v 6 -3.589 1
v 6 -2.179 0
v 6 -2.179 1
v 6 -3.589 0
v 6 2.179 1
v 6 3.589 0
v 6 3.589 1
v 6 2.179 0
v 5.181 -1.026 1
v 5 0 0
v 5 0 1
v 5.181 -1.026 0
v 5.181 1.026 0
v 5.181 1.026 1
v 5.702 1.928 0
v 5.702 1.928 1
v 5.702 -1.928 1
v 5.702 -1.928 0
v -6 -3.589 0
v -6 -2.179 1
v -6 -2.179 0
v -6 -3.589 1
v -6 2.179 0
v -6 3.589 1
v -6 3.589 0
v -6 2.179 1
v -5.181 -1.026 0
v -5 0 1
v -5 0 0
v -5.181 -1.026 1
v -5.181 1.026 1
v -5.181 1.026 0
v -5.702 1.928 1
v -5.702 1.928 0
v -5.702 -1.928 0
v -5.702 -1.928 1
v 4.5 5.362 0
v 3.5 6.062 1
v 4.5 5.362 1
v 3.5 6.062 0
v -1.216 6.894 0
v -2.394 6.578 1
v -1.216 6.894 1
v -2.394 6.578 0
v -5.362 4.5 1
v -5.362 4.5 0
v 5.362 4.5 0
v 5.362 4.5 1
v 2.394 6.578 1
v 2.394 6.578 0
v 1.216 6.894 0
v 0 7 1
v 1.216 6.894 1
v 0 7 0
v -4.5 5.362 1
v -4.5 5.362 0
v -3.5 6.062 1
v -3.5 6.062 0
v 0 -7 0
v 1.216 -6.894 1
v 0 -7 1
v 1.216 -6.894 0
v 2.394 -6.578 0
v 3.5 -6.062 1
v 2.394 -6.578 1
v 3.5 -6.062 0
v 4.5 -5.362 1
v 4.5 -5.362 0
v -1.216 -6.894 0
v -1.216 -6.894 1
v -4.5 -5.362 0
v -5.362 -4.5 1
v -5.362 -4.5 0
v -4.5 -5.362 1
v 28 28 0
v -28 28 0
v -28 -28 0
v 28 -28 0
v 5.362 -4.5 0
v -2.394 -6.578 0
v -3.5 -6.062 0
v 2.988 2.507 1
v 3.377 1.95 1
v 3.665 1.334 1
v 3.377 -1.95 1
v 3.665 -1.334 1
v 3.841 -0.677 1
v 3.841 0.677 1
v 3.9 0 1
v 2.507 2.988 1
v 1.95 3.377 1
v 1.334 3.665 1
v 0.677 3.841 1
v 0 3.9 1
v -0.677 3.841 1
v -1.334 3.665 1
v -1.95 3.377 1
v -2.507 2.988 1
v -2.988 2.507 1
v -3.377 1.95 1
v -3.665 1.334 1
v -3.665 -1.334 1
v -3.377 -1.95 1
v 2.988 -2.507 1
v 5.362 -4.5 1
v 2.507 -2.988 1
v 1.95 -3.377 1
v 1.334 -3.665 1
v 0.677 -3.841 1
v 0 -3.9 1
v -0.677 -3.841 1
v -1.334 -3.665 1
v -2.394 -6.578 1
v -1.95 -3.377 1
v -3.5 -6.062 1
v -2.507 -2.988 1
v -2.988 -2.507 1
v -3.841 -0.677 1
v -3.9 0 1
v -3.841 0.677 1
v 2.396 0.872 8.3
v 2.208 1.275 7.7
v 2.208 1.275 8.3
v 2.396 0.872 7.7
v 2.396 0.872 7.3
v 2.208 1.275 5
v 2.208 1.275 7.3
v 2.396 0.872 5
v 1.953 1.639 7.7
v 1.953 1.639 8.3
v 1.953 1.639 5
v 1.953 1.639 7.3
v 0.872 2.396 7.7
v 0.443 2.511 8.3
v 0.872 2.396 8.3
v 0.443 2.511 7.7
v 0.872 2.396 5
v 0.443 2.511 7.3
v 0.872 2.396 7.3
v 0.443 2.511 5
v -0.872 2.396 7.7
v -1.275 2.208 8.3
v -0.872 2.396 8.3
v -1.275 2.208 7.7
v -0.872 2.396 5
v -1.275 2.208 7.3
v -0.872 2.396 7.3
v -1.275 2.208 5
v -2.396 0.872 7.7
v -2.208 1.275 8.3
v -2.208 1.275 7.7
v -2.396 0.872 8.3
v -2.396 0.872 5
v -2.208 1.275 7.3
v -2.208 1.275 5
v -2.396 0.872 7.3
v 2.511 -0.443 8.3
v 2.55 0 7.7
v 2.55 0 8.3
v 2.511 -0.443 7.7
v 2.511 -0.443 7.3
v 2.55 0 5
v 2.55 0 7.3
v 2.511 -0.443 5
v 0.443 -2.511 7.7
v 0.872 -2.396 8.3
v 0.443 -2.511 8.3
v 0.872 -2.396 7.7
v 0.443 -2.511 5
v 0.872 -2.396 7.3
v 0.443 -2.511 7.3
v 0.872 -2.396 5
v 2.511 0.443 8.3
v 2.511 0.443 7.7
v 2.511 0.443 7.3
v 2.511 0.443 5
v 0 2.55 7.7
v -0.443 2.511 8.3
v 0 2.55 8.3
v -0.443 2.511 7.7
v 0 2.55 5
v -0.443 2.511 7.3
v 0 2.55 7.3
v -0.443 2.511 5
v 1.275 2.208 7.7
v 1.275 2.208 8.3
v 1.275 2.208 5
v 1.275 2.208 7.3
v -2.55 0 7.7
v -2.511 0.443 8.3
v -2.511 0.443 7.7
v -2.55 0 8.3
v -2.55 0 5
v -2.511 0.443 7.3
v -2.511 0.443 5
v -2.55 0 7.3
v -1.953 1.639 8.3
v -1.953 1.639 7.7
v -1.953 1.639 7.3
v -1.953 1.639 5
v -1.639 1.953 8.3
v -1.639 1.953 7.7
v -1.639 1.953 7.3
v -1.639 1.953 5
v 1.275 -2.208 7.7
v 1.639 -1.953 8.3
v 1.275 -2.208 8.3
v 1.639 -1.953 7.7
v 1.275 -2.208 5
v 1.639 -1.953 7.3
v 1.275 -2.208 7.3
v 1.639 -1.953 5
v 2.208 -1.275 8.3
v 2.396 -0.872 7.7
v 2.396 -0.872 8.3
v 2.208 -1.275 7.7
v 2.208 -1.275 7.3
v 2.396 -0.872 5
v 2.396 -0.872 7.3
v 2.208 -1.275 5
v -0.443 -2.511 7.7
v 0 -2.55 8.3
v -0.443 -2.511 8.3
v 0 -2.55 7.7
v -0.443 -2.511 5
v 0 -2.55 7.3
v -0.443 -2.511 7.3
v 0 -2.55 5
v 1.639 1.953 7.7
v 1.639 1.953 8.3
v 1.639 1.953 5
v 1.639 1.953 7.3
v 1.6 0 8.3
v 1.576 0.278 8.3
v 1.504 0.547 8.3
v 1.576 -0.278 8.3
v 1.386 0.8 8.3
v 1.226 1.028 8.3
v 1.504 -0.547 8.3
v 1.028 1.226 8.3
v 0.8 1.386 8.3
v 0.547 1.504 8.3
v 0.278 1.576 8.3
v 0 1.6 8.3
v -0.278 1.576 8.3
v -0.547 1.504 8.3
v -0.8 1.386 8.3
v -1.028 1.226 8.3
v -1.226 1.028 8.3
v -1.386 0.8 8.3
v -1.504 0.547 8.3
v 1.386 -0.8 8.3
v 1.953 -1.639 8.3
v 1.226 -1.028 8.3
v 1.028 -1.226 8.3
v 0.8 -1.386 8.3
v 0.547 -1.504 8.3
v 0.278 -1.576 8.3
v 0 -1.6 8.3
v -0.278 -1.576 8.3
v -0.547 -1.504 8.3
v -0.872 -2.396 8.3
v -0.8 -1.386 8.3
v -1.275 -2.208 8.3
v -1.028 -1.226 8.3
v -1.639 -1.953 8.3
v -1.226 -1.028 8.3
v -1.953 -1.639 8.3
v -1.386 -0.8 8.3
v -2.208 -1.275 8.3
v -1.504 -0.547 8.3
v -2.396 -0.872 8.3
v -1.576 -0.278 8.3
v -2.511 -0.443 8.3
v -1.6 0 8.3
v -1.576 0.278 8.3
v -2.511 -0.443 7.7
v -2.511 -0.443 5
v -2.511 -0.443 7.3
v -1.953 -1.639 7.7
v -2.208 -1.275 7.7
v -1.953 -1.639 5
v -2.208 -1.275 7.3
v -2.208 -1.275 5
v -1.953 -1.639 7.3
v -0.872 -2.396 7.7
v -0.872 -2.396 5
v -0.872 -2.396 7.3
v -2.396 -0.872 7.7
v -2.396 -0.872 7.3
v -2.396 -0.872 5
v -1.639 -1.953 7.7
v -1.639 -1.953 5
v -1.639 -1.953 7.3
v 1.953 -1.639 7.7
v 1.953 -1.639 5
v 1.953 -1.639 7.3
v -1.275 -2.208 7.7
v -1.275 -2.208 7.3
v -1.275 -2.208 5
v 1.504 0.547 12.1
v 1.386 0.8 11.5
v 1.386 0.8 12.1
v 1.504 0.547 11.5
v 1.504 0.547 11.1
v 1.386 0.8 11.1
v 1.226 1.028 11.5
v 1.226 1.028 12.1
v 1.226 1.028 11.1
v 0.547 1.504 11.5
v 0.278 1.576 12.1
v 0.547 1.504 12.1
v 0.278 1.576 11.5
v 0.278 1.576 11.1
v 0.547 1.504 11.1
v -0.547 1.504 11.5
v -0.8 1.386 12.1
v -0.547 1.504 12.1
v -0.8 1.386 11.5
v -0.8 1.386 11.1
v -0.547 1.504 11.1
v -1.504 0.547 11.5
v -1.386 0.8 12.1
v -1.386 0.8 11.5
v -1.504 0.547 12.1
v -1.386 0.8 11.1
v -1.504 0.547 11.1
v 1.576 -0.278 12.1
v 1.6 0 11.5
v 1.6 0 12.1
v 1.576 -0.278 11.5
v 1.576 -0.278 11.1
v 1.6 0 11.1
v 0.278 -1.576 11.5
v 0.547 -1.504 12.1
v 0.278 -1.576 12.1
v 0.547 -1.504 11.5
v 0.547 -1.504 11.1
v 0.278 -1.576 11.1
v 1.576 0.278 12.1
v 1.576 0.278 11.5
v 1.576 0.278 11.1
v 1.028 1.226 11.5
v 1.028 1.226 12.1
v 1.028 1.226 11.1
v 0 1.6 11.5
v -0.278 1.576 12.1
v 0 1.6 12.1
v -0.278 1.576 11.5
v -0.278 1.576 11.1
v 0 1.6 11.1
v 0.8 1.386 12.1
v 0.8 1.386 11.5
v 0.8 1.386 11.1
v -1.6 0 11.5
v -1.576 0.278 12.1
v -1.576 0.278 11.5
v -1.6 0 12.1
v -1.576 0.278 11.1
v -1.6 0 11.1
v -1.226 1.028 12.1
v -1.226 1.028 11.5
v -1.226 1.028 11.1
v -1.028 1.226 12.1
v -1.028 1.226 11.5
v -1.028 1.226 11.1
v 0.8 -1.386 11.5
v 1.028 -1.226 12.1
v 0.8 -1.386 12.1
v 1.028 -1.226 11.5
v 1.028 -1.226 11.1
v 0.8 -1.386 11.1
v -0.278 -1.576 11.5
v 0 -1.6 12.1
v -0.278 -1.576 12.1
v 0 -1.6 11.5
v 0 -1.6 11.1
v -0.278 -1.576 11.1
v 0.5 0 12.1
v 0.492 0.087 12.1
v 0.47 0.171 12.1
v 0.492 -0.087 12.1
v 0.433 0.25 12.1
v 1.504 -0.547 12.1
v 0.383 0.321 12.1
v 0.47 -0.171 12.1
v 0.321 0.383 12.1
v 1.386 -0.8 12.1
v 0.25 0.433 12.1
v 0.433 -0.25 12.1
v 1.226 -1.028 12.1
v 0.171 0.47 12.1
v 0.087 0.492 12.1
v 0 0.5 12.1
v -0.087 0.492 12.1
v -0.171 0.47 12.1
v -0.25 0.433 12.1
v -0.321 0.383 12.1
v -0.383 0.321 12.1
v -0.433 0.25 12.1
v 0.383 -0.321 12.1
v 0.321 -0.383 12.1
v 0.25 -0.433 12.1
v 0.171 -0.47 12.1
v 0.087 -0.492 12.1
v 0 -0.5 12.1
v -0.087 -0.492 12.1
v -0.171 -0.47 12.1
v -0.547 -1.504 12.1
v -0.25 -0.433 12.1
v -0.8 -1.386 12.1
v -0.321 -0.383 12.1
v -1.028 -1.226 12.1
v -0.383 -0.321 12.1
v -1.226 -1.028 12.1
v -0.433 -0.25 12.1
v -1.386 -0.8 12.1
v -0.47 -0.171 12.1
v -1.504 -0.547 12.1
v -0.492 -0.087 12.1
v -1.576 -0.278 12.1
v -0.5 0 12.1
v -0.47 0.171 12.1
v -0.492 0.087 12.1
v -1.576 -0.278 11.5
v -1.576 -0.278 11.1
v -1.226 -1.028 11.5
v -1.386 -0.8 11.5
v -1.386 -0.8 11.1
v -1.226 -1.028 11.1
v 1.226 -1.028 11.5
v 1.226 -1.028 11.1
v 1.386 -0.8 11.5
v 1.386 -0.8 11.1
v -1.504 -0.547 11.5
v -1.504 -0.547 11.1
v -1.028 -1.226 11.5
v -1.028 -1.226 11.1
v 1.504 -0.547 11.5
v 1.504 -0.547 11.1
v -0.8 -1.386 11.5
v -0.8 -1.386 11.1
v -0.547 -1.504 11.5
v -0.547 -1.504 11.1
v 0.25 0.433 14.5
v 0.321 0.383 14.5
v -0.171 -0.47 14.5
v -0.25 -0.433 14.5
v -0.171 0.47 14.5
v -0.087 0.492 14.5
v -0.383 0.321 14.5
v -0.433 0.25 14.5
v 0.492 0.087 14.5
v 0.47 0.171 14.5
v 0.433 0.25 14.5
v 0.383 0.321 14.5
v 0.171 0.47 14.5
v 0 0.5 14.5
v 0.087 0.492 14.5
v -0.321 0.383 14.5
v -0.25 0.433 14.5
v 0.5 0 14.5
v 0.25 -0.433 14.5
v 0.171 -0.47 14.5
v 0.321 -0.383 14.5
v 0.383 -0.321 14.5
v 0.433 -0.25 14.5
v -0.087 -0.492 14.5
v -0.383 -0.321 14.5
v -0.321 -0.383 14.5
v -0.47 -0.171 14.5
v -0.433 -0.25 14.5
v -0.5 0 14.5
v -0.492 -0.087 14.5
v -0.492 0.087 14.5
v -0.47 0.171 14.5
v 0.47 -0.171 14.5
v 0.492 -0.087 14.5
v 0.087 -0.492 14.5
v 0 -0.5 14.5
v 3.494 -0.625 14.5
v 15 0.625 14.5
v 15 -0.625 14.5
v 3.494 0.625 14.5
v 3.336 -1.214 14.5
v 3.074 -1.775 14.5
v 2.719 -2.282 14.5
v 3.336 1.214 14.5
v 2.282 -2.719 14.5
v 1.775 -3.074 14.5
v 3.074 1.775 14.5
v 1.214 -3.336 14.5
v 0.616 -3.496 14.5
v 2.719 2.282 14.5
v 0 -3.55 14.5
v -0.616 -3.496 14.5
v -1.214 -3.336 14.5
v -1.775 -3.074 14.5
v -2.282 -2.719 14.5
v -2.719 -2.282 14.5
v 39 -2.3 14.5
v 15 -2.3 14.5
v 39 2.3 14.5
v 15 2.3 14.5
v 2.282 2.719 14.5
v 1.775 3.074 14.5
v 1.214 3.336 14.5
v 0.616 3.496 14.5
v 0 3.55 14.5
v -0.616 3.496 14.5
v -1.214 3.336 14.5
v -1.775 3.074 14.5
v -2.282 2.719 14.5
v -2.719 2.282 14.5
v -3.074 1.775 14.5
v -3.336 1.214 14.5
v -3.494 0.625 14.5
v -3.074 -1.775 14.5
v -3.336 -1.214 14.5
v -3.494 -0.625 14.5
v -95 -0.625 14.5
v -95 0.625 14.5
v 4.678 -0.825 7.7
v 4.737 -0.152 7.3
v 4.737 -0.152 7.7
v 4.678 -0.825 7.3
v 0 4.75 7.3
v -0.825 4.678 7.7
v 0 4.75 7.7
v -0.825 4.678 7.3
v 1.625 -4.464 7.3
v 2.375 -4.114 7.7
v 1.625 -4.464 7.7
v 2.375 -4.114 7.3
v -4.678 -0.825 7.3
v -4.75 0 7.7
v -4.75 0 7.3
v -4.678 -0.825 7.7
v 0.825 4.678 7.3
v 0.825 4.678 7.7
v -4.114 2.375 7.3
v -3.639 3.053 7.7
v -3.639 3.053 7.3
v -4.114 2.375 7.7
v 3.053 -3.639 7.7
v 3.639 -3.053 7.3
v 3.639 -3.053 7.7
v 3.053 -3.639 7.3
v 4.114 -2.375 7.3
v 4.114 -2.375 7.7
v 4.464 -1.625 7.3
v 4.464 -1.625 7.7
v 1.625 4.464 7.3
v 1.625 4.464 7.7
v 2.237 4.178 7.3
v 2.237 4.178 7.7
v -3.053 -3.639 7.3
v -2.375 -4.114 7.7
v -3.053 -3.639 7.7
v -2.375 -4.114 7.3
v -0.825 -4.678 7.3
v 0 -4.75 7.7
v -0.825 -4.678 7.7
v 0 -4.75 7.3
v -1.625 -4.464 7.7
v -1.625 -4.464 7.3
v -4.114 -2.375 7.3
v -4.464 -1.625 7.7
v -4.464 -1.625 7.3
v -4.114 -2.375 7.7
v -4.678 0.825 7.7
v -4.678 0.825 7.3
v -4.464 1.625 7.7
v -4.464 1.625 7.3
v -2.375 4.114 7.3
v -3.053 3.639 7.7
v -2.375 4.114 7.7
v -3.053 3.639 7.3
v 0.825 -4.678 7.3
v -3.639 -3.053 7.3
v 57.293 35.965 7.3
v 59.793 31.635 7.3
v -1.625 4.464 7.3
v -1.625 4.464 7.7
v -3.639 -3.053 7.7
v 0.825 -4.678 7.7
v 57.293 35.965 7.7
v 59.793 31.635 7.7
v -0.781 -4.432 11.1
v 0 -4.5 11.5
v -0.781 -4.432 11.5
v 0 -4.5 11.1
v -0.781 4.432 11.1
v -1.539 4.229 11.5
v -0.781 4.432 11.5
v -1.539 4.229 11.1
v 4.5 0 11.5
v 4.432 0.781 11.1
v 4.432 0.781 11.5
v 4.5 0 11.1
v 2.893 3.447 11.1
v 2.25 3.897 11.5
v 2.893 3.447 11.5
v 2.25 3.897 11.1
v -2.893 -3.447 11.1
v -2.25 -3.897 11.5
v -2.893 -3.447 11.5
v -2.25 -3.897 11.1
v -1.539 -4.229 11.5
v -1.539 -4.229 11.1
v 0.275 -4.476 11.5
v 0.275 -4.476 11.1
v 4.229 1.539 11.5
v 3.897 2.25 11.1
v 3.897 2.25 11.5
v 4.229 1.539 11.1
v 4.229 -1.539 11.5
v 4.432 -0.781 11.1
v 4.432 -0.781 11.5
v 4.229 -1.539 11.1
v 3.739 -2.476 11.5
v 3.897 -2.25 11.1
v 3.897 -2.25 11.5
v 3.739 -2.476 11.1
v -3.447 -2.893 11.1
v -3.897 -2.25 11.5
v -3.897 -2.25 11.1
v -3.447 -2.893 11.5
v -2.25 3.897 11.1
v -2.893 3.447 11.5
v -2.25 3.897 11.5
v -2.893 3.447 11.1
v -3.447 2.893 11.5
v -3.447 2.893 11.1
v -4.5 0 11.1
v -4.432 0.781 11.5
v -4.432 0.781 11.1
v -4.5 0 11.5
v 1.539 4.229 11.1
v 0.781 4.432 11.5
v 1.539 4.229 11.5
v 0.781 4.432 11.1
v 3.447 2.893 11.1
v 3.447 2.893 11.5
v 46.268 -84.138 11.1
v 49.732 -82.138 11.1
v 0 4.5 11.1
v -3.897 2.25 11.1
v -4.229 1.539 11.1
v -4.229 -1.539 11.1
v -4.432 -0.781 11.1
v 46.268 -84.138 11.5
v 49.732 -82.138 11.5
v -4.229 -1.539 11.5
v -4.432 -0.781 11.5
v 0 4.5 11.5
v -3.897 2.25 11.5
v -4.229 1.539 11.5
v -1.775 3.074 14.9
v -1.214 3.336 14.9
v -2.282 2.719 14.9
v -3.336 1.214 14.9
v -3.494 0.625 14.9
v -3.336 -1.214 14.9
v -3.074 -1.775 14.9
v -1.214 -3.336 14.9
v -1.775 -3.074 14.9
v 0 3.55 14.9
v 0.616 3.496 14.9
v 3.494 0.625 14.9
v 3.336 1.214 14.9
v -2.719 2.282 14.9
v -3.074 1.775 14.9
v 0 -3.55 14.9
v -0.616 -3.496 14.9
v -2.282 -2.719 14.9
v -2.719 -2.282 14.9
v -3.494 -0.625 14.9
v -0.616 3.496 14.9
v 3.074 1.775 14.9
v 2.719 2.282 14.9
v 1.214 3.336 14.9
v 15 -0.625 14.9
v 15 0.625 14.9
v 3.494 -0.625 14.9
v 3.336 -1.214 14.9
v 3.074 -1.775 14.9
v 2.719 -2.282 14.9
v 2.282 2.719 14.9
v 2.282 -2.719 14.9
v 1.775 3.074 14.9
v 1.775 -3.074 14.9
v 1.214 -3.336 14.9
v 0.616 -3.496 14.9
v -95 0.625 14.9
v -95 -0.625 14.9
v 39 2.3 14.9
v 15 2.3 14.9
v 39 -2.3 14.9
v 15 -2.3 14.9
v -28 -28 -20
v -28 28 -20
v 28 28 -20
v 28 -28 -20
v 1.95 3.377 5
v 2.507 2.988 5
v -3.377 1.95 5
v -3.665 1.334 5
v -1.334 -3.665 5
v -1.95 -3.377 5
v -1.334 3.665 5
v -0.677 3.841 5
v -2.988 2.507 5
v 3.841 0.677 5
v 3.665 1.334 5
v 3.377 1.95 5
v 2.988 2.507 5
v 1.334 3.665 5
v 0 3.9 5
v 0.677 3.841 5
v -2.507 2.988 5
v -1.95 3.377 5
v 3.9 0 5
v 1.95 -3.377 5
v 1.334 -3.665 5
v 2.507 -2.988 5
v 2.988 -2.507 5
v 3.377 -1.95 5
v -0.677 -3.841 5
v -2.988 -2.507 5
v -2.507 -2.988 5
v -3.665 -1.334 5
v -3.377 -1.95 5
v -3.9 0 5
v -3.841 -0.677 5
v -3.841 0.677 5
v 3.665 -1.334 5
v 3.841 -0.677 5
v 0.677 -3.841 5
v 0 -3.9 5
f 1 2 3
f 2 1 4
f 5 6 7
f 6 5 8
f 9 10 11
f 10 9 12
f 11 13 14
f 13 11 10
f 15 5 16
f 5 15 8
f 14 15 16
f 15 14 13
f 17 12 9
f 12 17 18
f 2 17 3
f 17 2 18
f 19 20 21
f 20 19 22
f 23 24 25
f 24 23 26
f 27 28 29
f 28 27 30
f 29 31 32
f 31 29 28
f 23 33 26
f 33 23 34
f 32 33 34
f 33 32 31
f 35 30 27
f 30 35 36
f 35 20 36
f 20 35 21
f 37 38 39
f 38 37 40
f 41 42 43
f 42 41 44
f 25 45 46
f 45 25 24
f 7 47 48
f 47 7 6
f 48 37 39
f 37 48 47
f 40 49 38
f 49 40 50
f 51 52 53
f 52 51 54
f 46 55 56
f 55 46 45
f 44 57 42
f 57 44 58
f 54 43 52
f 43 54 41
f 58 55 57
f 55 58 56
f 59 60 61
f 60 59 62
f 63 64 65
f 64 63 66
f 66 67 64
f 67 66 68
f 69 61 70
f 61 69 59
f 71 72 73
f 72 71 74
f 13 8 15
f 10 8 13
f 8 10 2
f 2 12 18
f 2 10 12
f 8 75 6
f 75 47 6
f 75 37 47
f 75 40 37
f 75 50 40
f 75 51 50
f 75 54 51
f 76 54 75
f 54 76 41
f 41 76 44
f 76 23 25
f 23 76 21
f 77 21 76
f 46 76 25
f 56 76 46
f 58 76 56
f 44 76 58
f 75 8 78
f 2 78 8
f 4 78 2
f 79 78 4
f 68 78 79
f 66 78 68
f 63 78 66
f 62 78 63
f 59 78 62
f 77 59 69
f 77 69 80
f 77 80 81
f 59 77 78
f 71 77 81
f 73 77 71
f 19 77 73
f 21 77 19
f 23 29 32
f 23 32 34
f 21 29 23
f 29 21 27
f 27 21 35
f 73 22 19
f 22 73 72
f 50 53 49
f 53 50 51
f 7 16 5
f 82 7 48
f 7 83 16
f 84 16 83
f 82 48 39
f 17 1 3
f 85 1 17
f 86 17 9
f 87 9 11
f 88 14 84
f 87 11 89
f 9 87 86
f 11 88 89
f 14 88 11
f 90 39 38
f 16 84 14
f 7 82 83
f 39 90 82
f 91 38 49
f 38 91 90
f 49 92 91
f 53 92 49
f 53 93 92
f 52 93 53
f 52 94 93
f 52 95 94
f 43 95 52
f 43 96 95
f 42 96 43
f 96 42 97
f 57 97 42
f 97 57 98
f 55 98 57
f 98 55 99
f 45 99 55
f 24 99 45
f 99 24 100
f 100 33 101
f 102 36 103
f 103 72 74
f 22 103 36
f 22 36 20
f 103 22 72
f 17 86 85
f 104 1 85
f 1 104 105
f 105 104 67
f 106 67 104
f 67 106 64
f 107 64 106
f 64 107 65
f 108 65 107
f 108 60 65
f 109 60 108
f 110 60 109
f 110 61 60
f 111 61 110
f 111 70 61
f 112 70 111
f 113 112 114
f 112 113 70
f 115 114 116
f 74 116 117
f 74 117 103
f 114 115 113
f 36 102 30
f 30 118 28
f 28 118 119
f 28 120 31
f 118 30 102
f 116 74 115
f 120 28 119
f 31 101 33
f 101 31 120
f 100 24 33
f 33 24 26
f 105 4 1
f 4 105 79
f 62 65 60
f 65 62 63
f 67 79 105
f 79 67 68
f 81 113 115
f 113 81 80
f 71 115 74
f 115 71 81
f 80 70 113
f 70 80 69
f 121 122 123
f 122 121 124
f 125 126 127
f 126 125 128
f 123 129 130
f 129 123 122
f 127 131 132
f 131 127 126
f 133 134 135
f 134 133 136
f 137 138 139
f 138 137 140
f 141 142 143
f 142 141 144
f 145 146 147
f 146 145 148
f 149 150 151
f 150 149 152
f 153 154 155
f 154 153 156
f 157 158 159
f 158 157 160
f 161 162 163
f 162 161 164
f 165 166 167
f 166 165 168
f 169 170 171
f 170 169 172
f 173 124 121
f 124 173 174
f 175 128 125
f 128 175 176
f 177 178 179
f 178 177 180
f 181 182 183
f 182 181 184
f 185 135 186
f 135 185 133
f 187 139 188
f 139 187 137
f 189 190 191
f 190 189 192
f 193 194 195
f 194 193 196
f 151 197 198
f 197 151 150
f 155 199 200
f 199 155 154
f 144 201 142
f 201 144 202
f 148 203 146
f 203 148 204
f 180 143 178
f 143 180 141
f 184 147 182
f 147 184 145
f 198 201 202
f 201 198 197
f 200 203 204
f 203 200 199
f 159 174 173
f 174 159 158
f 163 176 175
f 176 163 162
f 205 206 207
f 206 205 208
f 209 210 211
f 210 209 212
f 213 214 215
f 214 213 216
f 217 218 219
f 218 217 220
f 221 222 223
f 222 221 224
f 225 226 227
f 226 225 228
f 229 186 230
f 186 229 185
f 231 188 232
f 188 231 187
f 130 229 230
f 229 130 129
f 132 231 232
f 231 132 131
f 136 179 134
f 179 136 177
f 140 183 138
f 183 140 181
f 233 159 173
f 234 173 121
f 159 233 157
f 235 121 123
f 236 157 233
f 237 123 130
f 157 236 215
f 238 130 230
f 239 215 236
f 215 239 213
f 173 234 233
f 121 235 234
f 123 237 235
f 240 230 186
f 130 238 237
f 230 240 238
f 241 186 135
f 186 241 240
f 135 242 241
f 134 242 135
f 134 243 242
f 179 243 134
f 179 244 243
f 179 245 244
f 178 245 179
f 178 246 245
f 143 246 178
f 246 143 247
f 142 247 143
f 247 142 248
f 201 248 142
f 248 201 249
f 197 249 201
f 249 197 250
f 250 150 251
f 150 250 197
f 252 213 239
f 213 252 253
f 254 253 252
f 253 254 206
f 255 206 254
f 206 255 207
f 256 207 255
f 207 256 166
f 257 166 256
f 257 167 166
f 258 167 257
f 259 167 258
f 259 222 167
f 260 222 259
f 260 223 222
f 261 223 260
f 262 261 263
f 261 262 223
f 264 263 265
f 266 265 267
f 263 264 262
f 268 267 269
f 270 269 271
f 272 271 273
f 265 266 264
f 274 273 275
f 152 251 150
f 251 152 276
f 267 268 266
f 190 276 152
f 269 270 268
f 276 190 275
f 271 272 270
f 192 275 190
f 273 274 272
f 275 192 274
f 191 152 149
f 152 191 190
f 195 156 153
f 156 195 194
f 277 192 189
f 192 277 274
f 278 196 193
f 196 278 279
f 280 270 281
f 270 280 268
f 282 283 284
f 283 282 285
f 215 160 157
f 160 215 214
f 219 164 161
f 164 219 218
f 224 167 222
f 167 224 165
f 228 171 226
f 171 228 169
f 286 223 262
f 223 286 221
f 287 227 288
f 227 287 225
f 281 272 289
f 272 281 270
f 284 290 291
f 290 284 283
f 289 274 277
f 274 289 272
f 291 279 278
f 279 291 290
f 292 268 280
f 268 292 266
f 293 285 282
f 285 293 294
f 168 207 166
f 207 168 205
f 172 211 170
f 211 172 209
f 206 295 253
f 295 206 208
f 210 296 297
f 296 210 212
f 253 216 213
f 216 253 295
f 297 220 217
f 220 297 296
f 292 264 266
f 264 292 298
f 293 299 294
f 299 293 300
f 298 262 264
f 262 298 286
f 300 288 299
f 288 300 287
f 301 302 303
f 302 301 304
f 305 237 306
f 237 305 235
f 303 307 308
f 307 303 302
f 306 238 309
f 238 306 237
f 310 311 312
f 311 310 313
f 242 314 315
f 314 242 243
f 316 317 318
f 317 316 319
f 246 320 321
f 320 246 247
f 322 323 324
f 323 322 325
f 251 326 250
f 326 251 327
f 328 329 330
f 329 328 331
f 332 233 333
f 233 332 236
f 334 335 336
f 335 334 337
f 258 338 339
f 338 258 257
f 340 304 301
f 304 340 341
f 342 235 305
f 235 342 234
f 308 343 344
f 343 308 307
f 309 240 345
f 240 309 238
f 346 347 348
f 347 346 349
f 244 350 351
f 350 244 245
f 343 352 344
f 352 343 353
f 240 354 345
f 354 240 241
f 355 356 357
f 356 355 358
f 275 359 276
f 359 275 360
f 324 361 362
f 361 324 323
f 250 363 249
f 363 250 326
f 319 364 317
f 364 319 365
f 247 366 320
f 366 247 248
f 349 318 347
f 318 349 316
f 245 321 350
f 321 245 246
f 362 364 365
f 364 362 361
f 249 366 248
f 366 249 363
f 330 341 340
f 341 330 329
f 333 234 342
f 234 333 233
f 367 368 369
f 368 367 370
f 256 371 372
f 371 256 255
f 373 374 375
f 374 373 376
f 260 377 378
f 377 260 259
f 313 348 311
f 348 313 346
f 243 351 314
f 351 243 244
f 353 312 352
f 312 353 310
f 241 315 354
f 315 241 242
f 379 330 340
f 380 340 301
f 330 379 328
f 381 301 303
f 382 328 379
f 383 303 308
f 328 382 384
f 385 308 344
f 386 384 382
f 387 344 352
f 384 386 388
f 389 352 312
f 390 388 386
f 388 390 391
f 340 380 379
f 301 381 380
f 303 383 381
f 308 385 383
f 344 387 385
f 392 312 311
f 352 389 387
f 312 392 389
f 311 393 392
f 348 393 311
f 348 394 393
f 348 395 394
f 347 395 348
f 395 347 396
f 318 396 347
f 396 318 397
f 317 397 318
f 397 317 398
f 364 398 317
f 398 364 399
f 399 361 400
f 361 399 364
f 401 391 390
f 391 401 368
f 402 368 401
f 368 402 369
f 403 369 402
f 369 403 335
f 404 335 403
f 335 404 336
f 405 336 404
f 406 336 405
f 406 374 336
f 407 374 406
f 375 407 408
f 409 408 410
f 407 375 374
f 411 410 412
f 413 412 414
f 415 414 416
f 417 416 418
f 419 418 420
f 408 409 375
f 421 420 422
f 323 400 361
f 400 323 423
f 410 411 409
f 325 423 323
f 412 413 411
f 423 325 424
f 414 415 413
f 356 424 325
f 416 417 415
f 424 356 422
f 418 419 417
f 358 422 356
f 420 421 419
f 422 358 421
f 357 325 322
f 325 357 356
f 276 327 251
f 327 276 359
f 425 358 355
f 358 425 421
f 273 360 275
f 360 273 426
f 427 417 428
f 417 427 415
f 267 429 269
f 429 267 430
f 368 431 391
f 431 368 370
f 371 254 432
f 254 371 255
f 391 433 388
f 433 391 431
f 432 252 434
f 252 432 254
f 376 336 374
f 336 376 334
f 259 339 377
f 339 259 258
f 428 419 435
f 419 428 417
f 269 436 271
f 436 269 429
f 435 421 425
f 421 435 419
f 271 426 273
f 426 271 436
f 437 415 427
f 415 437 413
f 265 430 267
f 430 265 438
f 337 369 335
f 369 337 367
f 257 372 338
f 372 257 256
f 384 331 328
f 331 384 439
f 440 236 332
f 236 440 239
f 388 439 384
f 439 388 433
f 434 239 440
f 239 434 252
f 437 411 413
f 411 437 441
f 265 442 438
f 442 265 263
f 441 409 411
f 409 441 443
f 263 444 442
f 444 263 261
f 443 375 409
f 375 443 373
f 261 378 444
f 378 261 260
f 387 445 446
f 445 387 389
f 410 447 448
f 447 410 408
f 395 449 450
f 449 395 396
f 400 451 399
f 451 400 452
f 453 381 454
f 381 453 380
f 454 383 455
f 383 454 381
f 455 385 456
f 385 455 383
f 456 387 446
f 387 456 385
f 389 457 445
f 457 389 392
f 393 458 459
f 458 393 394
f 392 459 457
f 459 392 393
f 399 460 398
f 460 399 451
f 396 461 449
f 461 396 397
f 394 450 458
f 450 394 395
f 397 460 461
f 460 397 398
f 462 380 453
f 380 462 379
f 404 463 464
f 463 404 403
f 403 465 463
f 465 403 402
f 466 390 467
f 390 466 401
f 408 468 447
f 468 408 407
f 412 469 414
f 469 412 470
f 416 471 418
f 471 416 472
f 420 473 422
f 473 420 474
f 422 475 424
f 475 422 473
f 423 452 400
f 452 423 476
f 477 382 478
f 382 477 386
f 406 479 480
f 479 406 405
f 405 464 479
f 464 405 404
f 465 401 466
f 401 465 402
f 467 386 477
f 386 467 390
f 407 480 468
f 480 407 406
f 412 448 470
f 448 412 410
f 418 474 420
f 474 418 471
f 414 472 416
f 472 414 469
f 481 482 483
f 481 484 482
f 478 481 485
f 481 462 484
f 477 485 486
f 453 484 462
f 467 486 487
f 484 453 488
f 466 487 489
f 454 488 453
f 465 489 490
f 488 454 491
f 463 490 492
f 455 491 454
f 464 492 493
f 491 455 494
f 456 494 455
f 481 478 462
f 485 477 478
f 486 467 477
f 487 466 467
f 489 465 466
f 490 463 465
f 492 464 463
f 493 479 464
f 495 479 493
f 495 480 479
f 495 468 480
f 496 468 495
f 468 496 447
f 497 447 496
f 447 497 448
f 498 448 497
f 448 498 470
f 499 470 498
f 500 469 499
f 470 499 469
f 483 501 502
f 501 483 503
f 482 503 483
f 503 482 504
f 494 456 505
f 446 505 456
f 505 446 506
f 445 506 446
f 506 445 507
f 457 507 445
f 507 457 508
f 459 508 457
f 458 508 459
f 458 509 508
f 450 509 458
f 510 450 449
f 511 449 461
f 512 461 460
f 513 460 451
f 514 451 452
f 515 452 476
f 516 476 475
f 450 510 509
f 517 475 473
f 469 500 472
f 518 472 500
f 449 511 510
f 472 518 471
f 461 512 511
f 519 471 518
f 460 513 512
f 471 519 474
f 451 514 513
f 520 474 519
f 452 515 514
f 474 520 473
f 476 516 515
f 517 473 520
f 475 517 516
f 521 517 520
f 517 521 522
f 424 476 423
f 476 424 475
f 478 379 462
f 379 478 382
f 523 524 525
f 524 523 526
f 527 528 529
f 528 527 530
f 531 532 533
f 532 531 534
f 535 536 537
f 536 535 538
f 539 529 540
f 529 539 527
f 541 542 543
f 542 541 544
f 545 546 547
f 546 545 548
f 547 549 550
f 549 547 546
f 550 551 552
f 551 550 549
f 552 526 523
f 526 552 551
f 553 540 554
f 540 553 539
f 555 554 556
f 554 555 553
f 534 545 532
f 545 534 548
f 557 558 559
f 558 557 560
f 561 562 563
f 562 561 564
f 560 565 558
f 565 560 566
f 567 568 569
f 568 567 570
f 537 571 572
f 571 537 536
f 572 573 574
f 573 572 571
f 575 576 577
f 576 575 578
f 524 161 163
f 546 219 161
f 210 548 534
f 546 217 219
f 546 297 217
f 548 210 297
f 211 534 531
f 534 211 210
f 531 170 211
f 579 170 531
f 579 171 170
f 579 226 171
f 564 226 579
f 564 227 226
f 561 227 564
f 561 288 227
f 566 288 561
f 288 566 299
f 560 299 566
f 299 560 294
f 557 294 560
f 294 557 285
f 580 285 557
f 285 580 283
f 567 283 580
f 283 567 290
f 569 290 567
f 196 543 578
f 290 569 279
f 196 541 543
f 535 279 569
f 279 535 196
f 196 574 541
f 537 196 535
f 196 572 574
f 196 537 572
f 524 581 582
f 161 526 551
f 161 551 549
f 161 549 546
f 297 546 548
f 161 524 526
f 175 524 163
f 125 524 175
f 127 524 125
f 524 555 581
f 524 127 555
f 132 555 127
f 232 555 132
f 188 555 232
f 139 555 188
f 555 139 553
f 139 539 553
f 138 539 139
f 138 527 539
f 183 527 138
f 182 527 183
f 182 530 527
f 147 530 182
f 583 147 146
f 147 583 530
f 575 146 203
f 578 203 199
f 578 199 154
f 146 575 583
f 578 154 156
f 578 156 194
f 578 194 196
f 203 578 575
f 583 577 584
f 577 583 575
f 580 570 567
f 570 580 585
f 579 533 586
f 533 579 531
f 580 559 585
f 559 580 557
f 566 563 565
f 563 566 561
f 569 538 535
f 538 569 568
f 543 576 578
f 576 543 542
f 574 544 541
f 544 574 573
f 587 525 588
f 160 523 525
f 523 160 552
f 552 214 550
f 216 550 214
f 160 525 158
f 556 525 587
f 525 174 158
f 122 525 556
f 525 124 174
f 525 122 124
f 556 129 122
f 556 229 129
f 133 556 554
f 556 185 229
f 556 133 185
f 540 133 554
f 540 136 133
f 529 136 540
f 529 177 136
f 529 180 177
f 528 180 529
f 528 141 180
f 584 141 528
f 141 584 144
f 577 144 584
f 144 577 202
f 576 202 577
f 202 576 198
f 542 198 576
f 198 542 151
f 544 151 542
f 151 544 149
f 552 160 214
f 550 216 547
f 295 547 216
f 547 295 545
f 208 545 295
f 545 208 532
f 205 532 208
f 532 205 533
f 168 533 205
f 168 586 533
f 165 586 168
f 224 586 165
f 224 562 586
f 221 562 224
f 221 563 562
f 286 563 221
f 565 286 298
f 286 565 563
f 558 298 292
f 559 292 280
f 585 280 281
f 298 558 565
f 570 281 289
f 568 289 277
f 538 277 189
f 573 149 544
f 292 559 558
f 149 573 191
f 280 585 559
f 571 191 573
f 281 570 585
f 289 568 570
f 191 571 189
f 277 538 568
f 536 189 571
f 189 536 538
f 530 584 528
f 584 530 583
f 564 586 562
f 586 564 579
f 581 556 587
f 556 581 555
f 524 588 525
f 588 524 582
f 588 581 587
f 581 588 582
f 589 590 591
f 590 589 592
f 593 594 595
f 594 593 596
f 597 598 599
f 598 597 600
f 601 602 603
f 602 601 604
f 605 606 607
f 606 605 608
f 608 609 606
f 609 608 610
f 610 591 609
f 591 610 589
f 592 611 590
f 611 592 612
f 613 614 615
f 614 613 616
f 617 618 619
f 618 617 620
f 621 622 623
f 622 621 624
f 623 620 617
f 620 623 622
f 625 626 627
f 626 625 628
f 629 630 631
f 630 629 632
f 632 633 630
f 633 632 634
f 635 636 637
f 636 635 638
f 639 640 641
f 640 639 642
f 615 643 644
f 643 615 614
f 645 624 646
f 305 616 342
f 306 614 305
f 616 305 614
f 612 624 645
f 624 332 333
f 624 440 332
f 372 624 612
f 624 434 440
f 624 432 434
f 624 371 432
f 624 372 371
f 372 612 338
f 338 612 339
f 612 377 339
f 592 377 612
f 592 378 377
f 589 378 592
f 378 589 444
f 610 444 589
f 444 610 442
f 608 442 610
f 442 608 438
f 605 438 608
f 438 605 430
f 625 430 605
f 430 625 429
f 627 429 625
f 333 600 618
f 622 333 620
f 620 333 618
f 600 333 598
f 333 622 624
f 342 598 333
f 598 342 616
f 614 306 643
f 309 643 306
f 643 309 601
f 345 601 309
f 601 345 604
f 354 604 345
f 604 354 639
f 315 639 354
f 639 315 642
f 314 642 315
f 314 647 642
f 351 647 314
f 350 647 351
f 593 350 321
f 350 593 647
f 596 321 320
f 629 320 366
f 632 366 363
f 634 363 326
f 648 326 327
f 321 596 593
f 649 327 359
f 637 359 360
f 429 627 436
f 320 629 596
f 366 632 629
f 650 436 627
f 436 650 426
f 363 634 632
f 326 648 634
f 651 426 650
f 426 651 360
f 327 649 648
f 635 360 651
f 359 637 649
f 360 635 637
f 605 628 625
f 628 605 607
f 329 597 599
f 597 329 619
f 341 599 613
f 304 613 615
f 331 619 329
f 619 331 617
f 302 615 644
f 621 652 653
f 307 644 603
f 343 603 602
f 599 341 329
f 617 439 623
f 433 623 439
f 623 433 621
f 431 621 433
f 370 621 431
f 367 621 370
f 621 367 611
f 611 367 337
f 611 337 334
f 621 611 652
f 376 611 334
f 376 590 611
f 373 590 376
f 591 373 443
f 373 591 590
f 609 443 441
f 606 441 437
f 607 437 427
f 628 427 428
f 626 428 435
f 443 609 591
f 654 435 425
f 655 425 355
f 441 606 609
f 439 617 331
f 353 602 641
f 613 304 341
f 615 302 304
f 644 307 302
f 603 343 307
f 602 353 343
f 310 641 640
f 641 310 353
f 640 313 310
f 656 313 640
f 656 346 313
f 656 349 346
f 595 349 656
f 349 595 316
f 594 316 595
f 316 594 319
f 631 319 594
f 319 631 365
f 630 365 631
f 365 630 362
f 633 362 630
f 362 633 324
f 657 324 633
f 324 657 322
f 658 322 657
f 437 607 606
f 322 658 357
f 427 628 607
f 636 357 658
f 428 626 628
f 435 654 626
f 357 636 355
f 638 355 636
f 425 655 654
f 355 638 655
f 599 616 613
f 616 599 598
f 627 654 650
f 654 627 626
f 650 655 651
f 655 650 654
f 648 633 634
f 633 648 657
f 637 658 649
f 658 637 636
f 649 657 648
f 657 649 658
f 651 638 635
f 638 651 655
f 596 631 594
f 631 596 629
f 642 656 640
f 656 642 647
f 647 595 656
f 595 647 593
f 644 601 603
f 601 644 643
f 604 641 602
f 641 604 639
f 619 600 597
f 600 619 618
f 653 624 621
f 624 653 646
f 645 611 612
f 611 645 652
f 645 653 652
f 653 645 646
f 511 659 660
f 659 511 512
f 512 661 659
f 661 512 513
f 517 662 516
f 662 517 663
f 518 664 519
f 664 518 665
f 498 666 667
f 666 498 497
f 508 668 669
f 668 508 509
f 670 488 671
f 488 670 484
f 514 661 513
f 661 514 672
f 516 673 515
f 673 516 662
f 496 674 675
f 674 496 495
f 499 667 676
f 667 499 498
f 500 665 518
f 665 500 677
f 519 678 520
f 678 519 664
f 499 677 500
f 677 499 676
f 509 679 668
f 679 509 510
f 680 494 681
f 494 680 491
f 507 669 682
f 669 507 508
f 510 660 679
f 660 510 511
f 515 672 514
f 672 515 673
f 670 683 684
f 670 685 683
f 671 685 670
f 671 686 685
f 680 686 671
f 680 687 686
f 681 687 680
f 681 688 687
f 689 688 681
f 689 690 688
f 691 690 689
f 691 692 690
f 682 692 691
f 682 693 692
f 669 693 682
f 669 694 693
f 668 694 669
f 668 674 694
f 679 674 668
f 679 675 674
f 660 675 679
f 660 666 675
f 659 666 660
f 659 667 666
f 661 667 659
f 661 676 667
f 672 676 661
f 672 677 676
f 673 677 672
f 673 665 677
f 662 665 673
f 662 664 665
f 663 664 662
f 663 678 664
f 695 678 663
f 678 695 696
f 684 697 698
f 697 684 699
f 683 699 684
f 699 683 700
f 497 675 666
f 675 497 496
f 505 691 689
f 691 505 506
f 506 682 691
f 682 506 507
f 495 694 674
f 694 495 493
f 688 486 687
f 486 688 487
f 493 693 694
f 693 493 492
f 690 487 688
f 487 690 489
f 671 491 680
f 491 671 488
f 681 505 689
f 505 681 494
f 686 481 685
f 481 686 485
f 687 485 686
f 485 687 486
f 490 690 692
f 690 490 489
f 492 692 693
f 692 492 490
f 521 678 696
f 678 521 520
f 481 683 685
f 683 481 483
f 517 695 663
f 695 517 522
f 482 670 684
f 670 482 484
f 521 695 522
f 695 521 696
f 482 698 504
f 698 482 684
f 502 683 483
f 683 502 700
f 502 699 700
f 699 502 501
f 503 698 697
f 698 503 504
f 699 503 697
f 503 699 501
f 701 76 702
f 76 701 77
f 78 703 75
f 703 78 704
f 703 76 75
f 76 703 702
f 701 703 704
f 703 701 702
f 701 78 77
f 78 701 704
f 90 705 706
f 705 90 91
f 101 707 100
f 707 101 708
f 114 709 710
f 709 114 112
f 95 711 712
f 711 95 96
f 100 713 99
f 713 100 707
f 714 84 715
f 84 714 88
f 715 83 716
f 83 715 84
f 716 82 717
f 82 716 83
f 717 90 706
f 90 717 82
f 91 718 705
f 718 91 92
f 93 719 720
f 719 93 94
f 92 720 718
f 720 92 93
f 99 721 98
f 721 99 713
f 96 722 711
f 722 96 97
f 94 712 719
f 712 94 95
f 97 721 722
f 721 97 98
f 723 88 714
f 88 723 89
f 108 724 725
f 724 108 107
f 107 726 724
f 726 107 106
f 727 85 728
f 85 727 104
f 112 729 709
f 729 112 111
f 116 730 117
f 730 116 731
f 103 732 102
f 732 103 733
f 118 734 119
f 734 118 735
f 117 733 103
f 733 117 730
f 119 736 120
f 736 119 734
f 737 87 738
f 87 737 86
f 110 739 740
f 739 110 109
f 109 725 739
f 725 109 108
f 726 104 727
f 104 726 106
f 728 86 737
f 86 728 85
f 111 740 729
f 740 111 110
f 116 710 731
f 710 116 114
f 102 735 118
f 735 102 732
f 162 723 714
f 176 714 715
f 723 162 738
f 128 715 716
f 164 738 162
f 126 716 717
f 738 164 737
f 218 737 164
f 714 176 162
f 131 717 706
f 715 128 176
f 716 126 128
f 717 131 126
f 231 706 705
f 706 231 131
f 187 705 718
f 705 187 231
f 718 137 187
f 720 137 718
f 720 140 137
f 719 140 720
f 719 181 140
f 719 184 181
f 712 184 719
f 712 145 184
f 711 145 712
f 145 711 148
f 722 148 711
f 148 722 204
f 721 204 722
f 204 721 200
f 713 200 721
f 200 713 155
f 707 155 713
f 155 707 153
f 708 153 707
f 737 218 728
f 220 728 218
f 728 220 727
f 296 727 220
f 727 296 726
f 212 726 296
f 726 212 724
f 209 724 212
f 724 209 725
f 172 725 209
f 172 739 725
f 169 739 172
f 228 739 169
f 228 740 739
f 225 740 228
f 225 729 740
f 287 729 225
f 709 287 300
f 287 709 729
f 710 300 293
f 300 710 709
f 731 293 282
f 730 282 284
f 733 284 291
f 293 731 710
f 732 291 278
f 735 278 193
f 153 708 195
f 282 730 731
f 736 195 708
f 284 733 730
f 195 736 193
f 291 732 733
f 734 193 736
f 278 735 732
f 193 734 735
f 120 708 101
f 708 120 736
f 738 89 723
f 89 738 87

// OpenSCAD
module clock_movement( time = [2, 25, 45]) {
    
    // box-shaped main body
    width = 56;
    depth = 56;
    height = 20;
    
    // alignment pattern
    alignment_dm = 14; // diameter of alignment pattern
    alignment_h = 1;    // height of alignment pattern
    alignment_flat = 1; // recess of falttening
    alignment_notch_dm = 6; // diameter of alignment notches
    alignment_notch_fl = 2; // recess of notch flattening
    
    // main body
    color("Gray")
    // method 1 as of in the book
    translate( [-width / 2, -depth / 2 , -height ] )
    cube( [width, depth, height] ); 
    // method 2
//    translate( [0, 0, -height/2] )
//   # cube( [width, depth, height], center = true ); 

    // screw terminal (measured from main body)
    screw_terminal_dm = 7.8;    // screw terminal diameter
    screw_terminal_h = 5;   // screw terminal height
    
    // clock hands axle
    hour_axle_dm = 5.1; // hour axle diameter
    hour_axle_h = 8.3;  // hour axle height
    
    minute_axle_dm = 3.2; // hour axle diameter
    minute_axle_h = 12.1;  // hour axle height
    
    second_axle_dm = 1; // hour axle diameter
    second_axle_h = 14.5;  // hour axle height
    
    // alignment pattern
     difference() {
        
        color("DarkBlue")
        cylinder( d = alignment_dm, h = alignment_h, $fn = 36);
        
        color("Gray")
        for ( i = [0:1] )
        mirror( [i, 0, 0] )
        union() {
            translate([ alignment_dm / 2 - alignment_flat, -(alignment_dm + 2) / 2, -1 ])
            cube([alignment_flat + 1, alignment_dm + 2, alignment_h + 2 ]);
            
            translate([ alignment_dm / 2 - alignment_notch_fl + alignment_notch_dm / 2, 0, -1 ])
            cylinder( d = alignment_notch_dm, h = alignment_h +2, $fn = 18);
        }
    }
    
    // screw terminal
    color("Gold")
    cylinder( d = screw_terminal_dm, h = screw_terminal_h, $fn = 36);
    
    // axles
    color("Black") {
        cylinder( d = hour_axle_dm, h = hour_axle_h, $fn = 36);
        cylinder( d = minute_axle_dm, h = minute_axle_h, $fn = 36);
        cylinder( d = second_axle_dm, h = second_axle_h, $fn = 36);
    }
    
    // clock hands
    rotate( [0, 0, -360 *  time[0] / 12] )
    translate( [0, 0, hour_axle_h - 1] )
    hour_hand();
    
    rotate( [0, 0, -360 * time[1] / 60] )
    translate( [0, 0, minute_axle_h - 1] )
    minute_hand();
    
    rotate( [0, 0, -360 * time[2] / 60] )
    translate( [0, 0, second_axle_h ] )
    second_hand();
    
    module hour_hand() {
        
        h = 0.4;   // height
        l = 72.35; // length
        r = 67.6;  // radius
        b = 5;     // width
        dm = 9.5;  // diameter
        
       color("Black")
        union() {
            cylinder( d = dm, h = h, $fn = 36);
            
            translate( [ -b / 2,  0, 0 ] )
                cube ( [ b, r, h] );
        }
        
        }
    
    module minute_hand() {
        
        h  = 0.4;   // height
        l  = 100.5; // length
        r  = 96;    // radius
        b  = 4;     // width
        dm = 9;     // diameter
        
        color("Black")
        union() {
            cylinder( d = dm, h = h, $fn = 36 );
            
            translate( [-b / 2, 0, 0] )
            cube( [b, r, h] );
        }
    }
    
    module second_hand() {
        
        b1  = 1.25; // width front part
        l1  = 95;   // length front part
        b2  = 1.25; // width neck
        l2  = 15;   // length neck
        b3  = 4.6;  // width back part
        l3  = 24;   // length back part
        dm  = 7.1;  // diameter
        h   = 0.4;  // material thickness
        
        color("Red")
        union() {
            cylinder( d = dm, h = h, $fn = 36);
            
            translate( [-b1 / 2, 0, 0] )
            cube( [b1, l1, h] );
            
            translate( [-b2 / 2, -l2, 0] )
            cube( [b2, l2, h] );

            translate( [-b3 / 2, -(l2 + l3), 0] )
            cube( [b3, l3, h] );
        }}
    
    }
    
clock_movement();
